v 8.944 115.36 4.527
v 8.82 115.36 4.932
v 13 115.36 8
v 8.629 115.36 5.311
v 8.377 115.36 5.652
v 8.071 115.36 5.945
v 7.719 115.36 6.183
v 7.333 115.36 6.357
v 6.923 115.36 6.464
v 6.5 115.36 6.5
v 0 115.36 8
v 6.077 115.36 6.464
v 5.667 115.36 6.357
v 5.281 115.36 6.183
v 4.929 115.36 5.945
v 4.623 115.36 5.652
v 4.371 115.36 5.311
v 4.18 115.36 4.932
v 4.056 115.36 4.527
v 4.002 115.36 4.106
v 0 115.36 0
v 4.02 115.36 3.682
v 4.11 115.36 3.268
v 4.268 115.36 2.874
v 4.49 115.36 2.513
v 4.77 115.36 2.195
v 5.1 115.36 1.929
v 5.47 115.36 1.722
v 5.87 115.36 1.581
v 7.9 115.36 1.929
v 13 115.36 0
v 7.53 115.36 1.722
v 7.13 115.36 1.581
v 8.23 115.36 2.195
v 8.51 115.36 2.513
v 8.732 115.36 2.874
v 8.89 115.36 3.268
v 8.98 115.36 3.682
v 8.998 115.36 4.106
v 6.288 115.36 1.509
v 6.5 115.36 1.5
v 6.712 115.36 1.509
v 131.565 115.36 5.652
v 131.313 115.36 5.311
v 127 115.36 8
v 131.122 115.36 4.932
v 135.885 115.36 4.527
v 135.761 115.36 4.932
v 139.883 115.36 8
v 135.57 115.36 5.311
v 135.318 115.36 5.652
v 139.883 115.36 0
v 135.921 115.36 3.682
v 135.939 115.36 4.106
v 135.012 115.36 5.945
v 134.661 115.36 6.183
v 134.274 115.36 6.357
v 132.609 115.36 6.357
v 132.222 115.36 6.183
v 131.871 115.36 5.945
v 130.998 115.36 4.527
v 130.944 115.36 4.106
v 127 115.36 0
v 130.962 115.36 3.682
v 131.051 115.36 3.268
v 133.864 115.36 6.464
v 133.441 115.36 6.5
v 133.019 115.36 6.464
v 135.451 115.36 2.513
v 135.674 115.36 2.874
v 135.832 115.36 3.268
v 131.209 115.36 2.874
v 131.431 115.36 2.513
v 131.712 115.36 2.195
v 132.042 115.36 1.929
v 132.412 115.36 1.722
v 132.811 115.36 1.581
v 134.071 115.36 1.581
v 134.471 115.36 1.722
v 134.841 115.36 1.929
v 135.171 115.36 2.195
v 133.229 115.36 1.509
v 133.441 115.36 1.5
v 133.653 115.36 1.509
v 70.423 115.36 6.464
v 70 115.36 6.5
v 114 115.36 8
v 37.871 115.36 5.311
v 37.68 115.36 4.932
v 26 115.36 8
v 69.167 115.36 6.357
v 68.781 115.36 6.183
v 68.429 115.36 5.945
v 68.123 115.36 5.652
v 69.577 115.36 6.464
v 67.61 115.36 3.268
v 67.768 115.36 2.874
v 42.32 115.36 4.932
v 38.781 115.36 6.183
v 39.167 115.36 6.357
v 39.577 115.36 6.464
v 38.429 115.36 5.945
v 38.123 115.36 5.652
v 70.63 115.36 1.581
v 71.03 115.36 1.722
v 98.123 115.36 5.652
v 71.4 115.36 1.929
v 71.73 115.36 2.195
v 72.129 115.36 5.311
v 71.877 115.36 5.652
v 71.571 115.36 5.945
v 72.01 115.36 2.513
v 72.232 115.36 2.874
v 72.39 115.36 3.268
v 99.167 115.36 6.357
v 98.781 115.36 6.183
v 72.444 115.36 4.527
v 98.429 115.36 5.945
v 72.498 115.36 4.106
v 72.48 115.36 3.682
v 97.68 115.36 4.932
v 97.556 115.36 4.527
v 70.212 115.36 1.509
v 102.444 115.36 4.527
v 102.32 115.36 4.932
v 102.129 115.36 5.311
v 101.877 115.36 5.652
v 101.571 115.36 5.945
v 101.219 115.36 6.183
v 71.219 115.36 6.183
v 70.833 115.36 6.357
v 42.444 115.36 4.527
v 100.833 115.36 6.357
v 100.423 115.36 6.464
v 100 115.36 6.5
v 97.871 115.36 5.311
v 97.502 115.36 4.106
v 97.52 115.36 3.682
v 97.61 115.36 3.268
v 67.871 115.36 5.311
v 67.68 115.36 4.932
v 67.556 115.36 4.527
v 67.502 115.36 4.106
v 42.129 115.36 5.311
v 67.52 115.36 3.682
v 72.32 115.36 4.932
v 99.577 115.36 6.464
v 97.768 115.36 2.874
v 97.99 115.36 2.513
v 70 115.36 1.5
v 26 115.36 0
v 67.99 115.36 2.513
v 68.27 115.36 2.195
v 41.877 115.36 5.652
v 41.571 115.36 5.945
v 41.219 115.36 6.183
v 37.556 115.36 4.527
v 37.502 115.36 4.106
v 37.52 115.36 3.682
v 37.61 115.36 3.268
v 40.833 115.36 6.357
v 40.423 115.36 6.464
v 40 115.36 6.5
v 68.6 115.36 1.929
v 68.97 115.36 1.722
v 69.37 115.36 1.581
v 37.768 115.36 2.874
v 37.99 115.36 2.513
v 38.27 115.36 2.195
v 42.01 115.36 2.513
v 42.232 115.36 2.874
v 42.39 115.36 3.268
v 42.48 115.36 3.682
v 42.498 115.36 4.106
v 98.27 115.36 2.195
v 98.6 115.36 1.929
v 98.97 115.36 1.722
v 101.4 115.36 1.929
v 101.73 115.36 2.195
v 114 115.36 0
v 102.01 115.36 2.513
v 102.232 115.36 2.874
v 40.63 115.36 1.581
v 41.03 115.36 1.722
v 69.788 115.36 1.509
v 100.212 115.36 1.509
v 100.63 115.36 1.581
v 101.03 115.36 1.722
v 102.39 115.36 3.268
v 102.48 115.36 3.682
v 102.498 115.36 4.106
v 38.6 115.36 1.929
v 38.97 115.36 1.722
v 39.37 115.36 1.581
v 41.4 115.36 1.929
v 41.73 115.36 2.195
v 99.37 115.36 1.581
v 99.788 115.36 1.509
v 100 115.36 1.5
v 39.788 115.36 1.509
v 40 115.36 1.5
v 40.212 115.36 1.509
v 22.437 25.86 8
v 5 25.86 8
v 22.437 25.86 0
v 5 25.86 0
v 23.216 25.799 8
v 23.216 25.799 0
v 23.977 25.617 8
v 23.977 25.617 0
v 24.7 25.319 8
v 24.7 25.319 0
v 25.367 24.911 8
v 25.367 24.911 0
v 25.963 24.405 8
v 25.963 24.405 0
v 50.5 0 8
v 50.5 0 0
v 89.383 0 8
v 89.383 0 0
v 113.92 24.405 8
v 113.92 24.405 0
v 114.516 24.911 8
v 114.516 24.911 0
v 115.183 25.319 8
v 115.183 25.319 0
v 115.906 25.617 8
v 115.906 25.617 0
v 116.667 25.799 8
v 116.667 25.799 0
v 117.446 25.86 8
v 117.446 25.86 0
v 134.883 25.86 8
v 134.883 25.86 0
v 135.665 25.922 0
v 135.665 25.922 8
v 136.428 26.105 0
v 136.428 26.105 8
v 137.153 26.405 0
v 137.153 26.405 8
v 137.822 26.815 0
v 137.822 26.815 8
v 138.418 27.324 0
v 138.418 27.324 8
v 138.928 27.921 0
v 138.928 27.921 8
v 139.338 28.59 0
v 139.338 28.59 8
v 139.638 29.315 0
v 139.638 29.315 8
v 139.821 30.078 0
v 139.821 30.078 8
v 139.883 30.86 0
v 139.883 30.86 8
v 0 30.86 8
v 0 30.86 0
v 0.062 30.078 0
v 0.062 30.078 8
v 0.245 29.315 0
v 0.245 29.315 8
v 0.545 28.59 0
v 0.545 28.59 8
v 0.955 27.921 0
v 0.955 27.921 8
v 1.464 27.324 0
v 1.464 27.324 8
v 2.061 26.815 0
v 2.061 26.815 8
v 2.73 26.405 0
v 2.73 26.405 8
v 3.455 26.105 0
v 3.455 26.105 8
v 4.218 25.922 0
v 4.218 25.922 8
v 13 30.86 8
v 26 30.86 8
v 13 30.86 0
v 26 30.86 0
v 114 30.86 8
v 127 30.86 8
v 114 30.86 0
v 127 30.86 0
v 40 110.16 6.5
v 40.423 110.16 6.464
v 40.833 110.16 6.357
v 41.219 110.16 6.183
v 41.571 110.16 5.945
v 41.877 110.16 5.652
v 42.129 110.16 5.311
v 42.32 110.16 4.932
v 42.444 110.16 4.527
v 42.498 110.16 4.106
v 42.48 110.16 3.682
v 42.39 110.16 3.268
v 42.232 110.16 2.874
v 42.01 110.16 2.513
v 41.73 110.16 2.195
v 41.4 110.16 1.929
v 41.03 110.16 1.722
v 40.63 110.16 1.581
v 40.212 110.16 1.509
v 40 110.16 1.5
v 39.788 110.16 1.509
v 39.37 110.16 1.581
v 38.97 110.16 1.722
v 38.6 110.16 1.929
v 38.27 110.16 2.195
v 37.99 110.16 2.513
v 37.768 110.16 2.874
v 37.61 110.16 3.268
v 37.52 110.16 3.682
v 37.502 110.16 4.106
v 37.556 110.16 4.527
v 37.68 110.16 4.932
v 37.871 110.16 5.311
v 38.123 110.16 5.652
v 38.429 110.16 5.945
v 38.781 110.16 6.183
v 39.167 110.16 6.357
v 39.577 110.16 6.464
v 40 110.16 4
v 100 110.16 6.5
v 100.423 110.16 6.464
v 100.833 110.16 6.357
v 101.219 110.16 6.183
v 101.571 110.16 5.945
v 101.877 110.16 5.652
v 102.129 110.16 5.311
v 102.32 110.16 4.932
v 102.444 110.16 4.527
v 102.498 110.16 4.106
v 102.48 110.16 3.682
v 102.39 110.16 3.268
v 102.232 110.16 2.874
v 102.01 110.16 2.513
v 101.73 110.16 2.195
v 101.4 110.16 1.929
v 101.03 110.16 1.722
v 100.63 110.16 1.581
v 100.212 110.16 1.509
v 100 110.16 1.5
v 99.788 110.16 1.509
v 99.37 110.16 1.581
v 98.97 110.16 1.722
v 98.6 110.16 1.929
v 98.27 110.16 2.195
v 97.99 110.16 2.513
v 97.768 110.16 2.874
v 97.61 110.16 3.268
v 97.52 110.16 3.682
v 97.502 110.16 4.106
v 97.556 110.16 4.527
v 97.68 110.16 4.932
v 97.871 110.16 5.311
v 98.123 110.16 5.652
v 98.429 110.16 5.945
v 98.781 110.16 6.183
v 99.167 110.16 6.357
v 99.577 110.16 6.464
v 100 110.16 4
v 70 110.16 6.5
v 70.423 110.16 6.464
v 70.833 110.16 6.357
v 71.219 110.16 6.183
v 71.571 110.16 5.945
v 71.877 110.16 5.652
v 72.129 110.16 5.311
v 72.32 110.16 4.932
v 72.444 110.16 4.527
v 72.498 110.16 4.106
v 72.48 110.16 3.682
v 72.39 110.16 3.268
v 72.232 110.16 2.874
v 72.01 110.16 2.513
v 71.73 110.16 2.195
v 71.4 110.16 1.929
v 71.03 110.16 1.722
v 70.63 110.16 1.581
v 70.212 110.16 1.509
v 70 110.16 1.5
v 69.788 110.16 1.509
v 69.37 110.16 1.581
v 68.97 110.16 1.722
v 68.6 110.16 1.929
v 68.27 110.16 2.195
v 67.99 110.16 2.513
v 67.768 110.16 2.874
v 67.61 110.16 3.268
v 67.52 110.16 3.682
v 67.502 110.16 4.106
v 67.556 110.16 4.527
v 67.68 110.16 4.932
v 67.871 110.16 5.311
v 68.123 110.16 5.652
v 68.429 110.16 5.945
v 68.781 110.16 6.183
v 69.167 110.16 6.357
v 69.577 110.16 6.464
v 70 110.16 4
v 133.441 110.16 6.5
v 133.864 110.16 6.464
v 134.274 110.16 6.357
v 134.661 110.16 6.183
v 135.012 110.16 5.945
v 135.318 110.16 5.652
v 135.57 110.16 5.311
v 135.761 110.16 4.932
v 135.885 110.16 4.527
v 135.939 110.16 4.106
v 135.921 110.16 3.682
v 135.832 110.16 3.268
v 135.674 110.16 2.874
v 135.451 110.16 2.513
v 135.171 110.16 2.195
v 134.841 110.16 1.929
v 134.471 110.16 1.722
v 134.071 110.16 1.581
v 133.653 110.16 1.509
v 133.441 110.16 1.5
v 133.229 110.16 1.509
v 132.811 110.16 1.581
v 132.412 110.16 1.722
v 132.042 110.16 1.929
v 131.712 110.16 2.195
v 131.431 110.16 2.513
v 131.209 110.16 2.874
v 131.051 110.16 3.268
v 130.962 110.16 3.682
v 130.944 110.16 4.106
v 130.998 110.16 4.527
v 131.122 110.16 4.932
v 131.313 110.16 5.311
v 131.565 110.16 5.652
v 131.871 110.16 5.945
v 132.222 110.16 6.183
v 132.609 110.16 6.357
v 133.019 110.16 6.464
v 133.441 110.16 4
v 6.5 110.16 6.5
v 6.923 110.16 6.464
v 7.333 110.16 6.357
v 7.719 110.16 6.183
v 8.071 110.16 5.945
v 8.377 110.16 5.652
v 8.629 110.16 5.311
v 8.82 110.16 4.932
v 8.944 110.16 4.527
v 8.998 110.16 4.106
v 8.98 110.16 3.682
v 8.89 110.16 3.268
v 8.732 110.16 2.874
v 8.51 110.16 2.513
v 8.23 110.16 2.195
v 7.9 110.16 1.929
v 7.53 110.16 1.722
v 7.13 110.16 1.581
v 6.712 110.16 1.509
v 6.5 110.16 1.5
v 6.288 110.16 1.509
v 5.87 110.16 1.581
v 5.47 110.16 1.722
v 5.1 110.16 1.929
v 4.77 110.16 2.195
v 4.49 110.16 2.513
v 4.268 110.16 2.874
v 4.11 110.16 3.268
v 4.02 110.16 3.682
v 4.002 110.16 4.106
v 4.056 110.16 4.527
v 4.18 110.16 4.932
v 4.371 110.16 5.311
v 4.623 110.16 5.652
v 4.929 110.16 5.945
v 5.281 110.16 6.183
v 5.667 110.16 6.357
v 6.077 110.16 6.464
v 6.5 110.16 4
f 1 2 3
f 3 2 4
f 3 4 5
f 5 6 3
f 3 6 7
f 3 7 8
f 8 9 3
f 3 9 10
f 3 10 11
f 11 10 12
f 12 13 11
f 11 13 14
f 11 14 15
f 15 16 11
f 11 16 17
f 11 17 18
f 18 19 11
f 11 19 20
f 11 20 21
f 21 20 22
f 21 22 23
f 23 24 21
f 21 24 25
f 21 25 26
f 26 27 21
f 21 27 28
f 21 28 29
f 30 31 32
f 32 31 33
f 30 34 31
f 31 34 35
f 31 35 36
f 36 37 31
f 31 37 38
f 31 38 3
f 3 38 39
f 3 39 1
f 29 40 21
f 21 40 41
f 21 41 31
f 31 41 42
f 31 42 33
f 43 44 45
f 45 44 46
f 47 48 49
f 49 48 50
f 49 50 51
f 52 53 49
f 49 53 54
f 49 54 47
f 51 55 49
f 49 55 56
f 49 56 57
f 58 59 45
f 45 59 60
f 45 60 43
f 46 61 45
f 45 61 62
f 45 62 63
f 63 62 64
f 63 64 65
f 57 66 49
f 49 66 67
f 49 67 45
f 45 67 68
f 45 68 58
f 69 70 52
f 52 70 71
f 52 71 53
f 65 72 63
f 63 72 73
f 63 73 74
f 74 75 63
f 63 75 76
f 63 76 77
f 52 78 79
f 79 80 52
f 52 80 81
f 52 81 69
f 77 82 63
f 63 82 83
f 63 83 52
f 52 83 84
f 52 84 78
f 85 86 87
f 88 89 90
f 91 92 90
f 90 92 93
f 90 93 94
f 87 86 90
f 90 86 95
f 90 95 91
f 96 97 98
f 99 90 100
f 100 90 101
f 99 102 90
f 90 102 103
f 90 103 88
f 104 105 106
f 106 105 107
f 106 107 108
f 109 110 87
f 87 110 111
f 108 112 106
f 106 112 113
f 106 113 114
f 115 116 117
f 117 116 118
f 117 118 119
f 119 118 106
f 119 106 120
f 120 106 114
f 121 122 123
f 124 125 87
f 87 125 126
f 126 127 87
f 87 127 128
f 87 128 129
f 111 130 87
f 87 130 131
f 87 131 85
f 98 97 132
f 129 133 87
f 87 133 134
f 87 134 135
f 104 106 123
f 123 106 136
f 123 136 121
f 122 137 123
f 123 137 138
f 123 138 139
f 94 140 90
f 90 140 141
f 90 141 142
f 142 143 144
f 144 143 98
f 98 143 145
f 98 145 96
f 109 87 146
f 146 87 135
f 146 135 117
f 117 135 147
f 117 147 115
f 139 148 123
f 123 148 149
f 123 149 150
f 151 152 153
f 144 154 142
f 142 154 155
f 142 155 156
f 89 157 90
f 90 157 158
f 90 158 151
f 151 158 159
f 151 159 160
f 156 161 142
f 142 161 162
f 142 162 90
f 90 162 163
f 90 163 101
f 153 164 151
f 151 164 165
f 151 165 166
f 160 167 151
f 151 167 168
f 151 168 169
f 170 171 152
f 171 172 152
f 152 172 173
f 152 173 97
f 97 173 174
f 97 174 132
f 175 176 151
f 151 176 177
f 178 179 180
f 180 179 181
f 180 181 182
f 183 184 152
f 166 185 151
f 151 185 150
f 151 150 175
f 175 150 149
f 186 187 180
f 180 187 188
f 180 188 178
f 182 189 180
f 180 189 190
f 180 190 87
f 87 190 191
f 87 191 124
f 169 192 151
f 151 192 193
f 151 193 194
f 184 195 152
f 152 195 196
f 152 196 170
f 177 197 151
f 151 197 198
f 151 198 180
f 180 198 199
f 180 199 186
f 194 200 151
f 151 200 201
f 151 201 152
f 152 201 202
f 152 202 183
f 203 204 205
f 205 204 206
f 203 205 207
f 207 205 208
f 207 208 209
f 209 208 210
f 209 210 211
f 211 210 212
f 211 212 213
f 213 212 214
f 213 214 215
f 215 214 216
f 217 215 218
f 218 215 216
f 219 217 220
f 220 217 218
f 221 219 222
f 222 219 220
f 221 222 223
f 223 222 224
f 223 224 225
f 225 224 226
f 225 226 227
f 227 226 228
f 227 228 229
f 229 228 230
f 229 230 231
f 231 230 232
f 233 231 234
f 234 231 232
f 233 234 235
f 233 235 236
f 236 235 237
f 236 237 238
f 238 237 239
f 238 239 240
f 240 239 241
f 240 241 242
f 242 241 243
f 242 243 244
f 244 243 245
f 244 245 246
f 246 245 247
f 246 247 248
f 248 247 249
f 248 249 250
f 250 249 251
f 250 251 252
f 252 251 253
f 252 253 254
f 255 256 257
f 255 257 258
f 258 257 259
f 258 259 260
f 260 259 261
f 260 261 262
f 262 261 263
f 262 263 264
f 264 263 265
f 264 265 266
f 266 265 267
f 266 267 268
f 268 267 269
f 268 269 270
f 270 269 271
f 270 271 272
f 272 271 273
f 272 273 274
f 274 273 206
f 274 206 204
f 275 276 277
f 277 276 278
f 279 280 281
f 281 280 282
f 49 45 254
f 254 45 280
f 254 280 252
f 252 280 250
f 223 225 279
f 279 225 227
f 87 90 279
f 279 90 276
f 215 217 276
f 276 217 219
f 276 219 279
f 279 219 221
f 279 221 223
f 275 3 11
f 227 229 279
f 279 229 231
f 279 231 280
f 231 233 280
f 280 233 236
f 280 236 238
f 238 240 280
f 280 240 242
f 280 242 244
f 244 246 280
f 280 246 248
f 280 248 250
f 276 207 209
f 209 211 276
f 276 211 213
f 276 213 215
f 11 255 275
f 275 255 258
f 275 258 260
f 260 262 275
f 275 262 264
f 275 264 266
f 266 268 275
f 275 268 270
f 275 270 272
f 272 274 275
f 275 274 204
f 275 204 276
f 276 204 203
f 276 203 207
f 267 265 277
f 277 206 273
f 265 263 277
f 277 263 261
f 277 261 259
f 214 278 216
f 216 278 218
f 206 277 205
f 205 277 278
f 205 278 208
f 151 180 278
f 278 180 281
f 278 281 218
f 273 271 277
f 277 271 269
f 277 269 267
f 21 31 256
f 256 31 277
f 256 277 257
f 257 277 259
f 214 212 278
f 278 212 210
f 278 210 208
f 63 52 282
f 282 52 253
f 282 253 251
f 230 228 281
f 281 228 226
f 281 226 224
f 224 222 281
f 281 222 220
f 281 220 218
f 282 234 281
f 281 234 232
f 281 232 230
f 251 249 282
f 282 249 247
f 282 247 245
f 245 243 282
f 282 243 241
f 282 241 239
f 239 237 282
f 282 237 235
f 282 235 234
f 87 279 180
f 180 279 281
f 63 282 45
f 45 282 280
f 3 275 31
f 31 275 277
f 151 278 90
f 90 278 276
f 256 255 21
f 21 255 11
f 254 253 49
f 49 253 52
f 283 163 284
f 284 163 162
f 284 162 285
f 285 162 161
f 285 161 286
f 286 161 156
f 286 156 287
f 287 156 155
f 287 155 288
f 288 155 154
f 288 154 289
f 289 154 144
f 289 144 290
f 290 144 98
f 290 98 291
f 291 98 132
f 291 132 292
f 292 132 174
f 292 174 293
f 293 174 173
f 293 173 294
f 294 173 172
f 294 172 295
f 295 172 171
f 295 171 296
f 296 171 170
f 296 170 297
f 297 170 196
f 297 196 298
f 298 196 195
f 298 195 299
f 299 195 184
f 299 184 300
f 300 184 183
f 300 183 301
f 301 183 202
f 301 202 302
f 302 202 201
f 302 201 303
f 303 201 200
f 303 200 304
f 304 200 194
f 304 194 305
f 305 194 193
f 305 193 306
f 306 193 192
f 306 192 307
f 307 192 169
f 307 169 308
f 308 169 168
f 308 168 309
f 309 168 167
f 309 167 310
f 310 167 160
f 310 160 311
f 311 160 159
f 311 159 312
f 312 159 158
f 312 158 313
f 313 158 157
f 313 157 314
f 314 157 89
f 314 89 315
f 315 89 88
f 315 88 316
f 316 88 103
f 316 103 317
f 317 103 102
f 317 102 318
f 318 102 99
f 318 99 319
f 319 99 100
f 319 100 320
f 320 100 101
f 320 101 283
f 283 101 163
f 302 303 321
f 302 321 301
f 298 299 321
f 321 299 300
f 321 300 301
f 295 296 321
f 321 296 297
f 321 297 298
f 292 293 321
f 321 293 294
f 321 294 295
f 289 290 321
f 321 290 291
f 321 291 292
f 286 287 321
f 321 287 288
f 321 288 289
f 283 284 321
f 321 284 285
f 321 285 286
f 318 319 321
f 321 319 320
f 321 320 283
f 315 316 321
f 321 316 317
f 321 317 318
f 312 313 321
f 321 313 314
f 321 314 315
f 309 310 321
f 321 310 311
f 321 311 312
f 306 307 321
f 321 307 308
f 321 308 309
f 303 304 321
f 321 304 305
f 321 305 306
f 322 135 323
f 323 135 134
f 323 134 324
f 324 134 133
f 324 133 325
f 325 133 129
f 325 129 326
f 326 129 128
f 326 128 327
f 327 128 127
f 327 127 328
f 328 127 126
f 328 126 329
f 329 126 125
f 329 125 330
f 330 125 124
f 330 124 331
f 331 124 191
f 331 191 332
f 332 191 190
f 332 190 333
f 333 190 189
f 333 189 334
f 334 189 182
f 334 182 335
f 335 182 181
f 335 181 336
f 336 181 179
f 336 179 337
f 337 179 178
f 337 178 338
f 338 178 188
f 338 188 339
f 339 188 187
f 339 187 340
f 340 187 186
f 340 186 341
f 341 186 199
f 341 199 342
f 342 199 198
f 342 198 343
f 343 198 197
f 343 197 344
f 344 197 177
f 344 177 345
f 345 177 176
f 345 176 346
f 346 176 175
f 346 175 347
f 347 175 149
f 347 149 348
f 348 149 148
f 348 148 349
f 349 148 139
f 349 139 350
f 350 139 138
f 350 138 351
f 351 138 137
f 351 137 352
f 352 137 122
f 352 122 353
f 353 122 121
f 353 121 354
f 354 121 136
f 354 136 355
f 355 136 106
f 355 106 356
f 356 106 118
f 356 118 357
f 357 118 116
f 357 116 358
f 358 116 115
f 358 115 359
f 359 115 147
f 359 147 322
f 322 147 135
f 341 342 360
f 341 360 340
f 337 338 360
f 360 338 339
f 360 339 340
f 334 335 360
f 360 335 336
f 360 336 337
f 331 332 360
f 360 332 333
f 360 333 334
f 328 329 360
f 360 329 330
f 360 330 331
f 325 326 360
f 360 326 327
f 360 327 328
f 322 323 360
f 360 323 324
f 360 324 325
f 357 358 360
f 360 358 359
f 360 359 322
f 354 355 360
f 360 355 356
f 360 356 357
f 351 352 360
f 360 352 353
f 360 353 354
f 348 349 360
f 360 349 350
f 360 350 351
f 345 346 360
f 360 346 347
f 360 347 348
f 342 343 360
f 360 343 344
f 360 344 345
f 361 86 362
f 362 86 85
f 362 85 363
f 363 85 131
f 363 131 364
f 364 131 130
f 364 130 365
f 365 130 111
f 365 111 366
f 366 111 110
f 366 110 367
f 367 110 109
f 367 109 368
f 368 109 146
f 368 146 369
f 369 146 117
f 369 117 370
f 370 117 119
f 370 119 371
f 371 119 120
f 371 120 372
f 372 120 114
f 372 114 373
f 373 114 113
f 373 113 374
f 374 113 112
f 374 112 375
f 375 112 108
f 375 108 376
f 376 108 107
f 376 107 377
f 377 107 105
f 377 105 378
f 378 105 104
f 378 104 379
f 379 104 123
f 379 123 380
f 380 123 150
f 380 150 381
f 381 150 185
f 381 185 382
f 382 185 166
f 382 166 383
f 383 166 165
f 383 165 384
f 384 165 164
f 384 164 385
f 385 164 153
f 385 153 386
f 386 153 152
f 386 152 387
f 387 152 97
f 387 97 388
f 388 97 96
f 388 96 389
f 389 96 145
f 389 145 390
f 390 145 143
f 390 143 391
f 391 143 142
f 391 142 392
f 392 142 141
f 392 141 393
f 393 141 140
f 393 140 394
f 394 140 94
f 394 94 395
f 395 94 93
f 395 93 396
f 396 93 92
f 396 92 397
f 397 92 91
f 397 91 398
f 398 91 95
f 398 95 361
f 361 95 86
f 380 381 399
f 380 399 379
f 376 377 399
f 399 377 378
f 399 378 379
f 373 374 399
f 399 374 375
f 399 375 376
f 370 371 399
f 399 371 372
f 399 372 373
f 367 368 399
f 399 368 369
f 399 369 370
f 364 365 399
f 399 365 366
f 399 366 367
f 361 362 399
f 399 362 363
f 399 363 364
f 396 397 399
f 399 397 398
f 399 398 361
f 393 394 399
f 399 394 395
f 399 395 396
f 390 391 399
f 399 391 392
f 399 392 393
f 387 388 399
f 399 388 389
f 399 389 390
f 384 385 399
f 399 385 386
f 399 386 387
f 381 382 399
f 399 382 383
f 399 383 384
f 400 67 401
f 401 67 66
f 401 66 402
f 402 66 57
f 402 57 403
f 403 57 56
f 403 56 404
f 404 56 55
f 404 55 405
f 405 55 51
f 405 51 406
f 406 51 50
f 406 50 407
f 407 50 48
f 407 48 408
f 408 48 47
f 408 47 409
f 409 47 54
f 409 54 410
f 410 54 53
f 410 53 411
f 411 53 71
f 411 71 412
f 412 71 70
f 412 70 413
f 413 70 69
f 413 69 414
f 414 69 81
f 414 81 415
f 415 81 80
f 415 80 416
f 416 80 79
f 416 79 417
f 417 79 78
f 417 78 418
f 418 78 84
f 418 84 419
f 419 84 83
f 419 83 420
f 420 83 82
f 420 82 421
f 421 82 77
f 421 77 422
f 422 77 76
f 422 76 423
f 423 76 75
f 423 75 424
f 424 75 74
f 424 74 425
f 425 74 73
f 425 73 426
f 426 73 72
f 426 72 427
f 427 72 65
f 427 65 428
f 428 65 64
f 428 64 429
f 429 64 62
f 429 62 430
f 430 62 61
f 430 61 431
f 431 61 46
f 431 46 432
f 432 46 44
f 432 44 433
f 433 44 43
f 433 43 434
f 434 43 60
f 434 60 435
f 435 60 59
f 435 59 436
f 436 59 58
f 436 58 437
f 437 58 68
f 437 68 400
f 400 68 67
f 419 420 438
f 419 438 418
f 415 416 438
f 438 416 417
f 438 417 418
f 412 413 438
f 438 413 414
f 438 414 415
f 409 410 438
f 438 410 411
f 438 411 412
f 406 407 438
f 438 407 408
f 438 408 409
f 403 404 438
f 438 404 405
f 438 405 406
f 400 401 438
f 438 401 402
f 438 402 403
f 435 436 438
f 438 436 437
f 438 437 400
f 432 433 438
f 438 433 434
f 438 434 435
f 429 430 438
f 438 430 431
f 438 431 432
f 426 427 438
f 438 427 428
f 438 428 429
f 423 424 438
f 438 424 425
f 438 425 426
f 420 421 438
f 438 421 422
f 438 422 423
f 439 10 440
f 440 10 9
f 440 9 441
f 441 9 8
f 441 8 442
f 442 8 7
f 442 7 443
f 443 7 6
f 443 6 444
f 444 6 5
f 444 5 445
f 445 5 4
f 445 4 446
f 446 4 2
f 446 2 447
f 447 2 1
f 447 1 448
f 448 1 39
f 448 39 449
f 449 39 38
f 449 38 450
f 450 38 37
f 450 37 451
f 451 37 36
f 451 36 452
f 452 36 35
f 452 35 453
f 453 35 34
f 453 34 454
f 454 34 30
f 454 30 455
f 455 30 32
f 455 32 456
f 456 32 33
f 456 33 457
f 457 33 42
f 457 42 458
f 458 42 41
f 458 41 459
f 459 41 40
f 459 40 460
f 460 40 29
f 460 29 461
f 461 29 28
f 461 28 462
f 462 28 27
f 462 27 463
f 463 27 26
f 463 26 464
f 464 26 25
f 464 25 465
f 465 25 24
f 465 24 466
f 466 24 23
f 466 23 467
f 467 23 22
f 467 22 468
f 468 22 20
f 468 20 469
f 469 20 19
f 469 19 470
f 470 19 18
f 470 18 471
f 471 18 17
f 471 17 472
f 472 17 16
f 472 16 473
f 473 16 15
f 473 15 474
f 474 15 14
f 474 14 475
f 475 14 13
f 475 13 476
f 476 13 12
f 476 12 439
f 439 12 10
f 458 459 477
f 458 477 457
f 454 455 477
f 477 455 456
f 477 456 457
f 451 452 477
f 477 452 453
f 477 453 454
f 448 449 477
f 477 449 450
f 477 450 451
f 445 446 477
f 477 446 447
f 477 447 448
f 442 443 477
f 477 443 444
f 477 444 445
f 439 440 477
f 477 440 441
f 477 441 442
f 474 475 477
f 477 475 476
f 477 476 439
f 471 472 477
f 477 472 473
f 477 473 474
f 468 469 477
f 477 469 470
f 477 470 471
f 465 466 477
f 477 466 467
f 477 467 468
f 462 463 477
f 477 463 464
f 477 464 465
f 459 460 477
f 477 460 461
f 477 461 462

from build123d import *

# Parameters (mm, degrees)
SKETCH1_W              = 13
SKETCH1_H              = 188.148975749
BOSS_EXTRUDE1_DEPTH    = 8
SKETCH2_W              = 45
SKETCH2_H              = 52
CUT_EXTRUDE1_DEPTH     = 341.17998495
SPLIT1_SURFACE_1_BACK  = 341.18
SPLIT1_SURFACE_1_DEPTH = 682.36
SPLIT1_SURFACE_2_BACK  = 341.18
SPLIT1_SURFACE_2_DEPTH = 682.36
SKETCH5_R              = 2.5
CUT_EXTRUDE6_DEPTH     = 5.2
CUT_EXTRUDE7_START     = -5.2
SKETCH4_R              = 2.5
CUT_EXTRUDE7_DEPTH     = 5.2


with BuildPart() as part:
    # Sketch1 → Boss-Extrude1 (new body)
    with BuildSketch(Plane.XY):
        with BuildLine():
            Line((0, 30.859943174), (0, 219.008918923))
            ThreePointArc((0, 219.008918923), (0.311003468, 220.744808182), (1.205324608, 222.264750409))
            Line((1.205324608, 222.264750409), (42.261389271, 270.115641625))
            ThreePointArc((42.261389271, 270.115641625), (42.81710491, 270.906904614), (43.210130369, 271.790334282))
            Line((43.210130369, 271.790334282), (54.802396658, 306.567133147))
            ThreePointArc((54.802396658, 306.567133147), (56.605292439, 309.029920375), (59.503914938, 309.985818768))
            Line((59.503914938, 309.985818768), (80.378944352, 309.985818768))
            ThreePointArc((80.378944352, 309.985818768), (83.277566851, 309.029920375), (85.080462632, 306.567133147))
            Line((85.080462632, 306.567133147), (96.672728921, 271.790334282))
            ThreePointArc((96.672728921, 271.790334282), (97.06575438, 270.906904614), (97.621470019, 270.115641625))
            Line((97.621470019, 270.115641625), (138.677534682, 222.264750409))
            ThreePointArc((138.677534682, 222.264750409), (139.571855822, 220.744808182), (139.88285929, 219.008918923))
            Line((139.88285929, 219.008918923), (139.88285929, 30.859943174))
            ThreePointArc((139.88285929, 30.859943174), (138.418393196, 27.324409268), (134.88285929, 25.859943174))
            Line((134.88285929, 25.859943174), (117.446021446, 25.859943174))
            ThreePointArc((117.446021446, 25.859943174), (115.538843756, 25.481920377), (113.920048724, 24.405012478))
            Line((113.920048724, 24.405012478), (89.38285929, 0))
            Line((89.38285929, 0), (50.5, 0))
            Line((50.5, 0), (25.962810565, 24.405012478))
            ThreePointArc((25.962810565, 24.405012478), (24.344015534, 25.481920377), (22.436837844, 25.859943174))
            Line((22.436837844, 25.859943174), (5, 25.859943174))
            ThreePointArc((5, 25.859943174), (1.464466094, 27.324409268), (0, 30.859943174))
        make_face()
        with Locations((19.5, 124.934431049)):
            Rectangle(SKETCH1_W, SKETCH1_H, mode=Mode.SUBTRACT)
        with Locations((120.5, 124.934431049)):
            Rectangle(SKETCH1_W, SKETCH1_H, mode=Mode.SUBTRACT)
    extrude(amount=BOSS_EXTRUDE1_DEPTH)

    # Sketch2 → Cut-Extrude1 (cut, through all)
    with BuildSketch(Plane.XY.offset(8)):
        with Locations((69.88285929, 180.008918923)):
            Rectangle(SKETCH2_W, SKETCH2_H)
    extrude(amount=-CUT_EXTRUDE1_DEPTH, mode=Mode.SUBTRACT)


with BuildPart() as body_2:
    # Split1: the piece behind the surface
    add(part.part)
    # Split1 surface: a surface, the sketch's curves swept straight by 682.36 mm
    with BuildLine(Plane(origin=(0, 0, 0), x_dir=(-1, 0, 0), z_dir=(0, 0, -1)).offset(-SPLIT1_SURFACE_1_BACK), mode=Mode.PRIVATE) as split1_surface_1_path:
        Line((0, 115.359943174), (-139.88285929, 115.359943174))
    split1_surface_1 = Shell.extrude(split1_surface_1_path.wire(), (0 * SPLIT1_SURFACE_1_DEPTH, 0 * SPLIT1_SURFACE_1_DEPTH, -1 * SPLIT1_SURFACE_1_DEPTH))
    split(bisect_by=split1_surface_1, keep=Keep.BOTTOM)


with BuildPart() as part_1:
    add(part.part)

    # Split1: split by a surface, the side it looks to stays
    # Split1 surface: a surface, the sketch's curves swept straight by 682.36 mm
    with BuildLine(Plane(origin=(0, 0, 0), x_dir=(-1, 0, 0), z_dir=(0, 0, -1)).offset(-SPLIT1_SURFACE_2_BACK), mode=Mode.PRIVATE) as split1_surface_2_path:
        Line((0, 115.359943174), (-139.88285929, 115.359943174))
    split1_surface_2 = Shell.extrude(split1_surface_2_path.wire(), (0 * SPLIT1_SURFACE_2_DEPTH, 0 * SPLIT1_SURFACE_2_DEPTH, -1 * SPLIT1_SURFACE_2_DEPTH))
    split(bisect_by=split1_surface_2, keep=Keep.TOP)

    # Sketch5 → Cut-Extrude6 (cut)
    with BuildSketch(Plane(origin=(0, 115.359943174, -115.359943174), x_dir=(1, 0, 0), z_dir=(0, -1, 0))):
        with Locations(Location((133.441429645, 119.359943174, 0), (0, 0, 270))):
            Circle(SKETCH5_R)
        with Locations(Location((70, 119.359943174, 0), (0, 0, 270))):
            Circle(SKETCH5_R)
        with Locations(Location((100, 119.359943174, 0), (0, 0, 270))):
            Circle(SKETCH5_R)
        with Locations(Location((40, 119.359943174, 0), (0, 0, 270))):
            Circle(SKETCH5_R)
        with Locations(Location((6.5, 119.359943174, 0), (0, 0, 270))):
            Circle(SKETCH5_R)
    extrude(amount=CUT_EXTRUDE6_DEPTH, mode=Mode.SUBTRACT)


with BuildPart() as body_2_1:
    # Body-Move/Copy1: moved
    add(body_2.part.moved(Location((0, 34.793425009, 0))))

    # Sketch4 → Cut-Extrude7 (cut)
    with BuildSketch(Plane(origin=(0, 150.153368183, 0), x_dir=(-1, 0, 0), z_dir=(0, -1, 0)).offset(CUT_EXTRUDE7_START)):
        with Locations(Location((-6.5, -4, 0), (0, 0, 90))):
            Circle(SKETCH4_R)
        with Locations(Location((-70, -4, 0), (0, 0, 90))):
            Circle(SKETCH4_R)
        with Locations(Location((-40, -4, 0), (0, 0, 90))):
            Circle(SKETCH4_R)
        with Locations(Location((-100, -4, 0), (0, 0, 90))):
            Circle(SKETCH4_R)
        with Locations(Location((-133.441429645, -4, 0), (0, 0, 90))):
            Circle(SKETCH4_R)
    extrude(amount=CUT_EXTRUDE7_DEPTH, mode=Mode.SUBTRACT)


solid = part_1.part
